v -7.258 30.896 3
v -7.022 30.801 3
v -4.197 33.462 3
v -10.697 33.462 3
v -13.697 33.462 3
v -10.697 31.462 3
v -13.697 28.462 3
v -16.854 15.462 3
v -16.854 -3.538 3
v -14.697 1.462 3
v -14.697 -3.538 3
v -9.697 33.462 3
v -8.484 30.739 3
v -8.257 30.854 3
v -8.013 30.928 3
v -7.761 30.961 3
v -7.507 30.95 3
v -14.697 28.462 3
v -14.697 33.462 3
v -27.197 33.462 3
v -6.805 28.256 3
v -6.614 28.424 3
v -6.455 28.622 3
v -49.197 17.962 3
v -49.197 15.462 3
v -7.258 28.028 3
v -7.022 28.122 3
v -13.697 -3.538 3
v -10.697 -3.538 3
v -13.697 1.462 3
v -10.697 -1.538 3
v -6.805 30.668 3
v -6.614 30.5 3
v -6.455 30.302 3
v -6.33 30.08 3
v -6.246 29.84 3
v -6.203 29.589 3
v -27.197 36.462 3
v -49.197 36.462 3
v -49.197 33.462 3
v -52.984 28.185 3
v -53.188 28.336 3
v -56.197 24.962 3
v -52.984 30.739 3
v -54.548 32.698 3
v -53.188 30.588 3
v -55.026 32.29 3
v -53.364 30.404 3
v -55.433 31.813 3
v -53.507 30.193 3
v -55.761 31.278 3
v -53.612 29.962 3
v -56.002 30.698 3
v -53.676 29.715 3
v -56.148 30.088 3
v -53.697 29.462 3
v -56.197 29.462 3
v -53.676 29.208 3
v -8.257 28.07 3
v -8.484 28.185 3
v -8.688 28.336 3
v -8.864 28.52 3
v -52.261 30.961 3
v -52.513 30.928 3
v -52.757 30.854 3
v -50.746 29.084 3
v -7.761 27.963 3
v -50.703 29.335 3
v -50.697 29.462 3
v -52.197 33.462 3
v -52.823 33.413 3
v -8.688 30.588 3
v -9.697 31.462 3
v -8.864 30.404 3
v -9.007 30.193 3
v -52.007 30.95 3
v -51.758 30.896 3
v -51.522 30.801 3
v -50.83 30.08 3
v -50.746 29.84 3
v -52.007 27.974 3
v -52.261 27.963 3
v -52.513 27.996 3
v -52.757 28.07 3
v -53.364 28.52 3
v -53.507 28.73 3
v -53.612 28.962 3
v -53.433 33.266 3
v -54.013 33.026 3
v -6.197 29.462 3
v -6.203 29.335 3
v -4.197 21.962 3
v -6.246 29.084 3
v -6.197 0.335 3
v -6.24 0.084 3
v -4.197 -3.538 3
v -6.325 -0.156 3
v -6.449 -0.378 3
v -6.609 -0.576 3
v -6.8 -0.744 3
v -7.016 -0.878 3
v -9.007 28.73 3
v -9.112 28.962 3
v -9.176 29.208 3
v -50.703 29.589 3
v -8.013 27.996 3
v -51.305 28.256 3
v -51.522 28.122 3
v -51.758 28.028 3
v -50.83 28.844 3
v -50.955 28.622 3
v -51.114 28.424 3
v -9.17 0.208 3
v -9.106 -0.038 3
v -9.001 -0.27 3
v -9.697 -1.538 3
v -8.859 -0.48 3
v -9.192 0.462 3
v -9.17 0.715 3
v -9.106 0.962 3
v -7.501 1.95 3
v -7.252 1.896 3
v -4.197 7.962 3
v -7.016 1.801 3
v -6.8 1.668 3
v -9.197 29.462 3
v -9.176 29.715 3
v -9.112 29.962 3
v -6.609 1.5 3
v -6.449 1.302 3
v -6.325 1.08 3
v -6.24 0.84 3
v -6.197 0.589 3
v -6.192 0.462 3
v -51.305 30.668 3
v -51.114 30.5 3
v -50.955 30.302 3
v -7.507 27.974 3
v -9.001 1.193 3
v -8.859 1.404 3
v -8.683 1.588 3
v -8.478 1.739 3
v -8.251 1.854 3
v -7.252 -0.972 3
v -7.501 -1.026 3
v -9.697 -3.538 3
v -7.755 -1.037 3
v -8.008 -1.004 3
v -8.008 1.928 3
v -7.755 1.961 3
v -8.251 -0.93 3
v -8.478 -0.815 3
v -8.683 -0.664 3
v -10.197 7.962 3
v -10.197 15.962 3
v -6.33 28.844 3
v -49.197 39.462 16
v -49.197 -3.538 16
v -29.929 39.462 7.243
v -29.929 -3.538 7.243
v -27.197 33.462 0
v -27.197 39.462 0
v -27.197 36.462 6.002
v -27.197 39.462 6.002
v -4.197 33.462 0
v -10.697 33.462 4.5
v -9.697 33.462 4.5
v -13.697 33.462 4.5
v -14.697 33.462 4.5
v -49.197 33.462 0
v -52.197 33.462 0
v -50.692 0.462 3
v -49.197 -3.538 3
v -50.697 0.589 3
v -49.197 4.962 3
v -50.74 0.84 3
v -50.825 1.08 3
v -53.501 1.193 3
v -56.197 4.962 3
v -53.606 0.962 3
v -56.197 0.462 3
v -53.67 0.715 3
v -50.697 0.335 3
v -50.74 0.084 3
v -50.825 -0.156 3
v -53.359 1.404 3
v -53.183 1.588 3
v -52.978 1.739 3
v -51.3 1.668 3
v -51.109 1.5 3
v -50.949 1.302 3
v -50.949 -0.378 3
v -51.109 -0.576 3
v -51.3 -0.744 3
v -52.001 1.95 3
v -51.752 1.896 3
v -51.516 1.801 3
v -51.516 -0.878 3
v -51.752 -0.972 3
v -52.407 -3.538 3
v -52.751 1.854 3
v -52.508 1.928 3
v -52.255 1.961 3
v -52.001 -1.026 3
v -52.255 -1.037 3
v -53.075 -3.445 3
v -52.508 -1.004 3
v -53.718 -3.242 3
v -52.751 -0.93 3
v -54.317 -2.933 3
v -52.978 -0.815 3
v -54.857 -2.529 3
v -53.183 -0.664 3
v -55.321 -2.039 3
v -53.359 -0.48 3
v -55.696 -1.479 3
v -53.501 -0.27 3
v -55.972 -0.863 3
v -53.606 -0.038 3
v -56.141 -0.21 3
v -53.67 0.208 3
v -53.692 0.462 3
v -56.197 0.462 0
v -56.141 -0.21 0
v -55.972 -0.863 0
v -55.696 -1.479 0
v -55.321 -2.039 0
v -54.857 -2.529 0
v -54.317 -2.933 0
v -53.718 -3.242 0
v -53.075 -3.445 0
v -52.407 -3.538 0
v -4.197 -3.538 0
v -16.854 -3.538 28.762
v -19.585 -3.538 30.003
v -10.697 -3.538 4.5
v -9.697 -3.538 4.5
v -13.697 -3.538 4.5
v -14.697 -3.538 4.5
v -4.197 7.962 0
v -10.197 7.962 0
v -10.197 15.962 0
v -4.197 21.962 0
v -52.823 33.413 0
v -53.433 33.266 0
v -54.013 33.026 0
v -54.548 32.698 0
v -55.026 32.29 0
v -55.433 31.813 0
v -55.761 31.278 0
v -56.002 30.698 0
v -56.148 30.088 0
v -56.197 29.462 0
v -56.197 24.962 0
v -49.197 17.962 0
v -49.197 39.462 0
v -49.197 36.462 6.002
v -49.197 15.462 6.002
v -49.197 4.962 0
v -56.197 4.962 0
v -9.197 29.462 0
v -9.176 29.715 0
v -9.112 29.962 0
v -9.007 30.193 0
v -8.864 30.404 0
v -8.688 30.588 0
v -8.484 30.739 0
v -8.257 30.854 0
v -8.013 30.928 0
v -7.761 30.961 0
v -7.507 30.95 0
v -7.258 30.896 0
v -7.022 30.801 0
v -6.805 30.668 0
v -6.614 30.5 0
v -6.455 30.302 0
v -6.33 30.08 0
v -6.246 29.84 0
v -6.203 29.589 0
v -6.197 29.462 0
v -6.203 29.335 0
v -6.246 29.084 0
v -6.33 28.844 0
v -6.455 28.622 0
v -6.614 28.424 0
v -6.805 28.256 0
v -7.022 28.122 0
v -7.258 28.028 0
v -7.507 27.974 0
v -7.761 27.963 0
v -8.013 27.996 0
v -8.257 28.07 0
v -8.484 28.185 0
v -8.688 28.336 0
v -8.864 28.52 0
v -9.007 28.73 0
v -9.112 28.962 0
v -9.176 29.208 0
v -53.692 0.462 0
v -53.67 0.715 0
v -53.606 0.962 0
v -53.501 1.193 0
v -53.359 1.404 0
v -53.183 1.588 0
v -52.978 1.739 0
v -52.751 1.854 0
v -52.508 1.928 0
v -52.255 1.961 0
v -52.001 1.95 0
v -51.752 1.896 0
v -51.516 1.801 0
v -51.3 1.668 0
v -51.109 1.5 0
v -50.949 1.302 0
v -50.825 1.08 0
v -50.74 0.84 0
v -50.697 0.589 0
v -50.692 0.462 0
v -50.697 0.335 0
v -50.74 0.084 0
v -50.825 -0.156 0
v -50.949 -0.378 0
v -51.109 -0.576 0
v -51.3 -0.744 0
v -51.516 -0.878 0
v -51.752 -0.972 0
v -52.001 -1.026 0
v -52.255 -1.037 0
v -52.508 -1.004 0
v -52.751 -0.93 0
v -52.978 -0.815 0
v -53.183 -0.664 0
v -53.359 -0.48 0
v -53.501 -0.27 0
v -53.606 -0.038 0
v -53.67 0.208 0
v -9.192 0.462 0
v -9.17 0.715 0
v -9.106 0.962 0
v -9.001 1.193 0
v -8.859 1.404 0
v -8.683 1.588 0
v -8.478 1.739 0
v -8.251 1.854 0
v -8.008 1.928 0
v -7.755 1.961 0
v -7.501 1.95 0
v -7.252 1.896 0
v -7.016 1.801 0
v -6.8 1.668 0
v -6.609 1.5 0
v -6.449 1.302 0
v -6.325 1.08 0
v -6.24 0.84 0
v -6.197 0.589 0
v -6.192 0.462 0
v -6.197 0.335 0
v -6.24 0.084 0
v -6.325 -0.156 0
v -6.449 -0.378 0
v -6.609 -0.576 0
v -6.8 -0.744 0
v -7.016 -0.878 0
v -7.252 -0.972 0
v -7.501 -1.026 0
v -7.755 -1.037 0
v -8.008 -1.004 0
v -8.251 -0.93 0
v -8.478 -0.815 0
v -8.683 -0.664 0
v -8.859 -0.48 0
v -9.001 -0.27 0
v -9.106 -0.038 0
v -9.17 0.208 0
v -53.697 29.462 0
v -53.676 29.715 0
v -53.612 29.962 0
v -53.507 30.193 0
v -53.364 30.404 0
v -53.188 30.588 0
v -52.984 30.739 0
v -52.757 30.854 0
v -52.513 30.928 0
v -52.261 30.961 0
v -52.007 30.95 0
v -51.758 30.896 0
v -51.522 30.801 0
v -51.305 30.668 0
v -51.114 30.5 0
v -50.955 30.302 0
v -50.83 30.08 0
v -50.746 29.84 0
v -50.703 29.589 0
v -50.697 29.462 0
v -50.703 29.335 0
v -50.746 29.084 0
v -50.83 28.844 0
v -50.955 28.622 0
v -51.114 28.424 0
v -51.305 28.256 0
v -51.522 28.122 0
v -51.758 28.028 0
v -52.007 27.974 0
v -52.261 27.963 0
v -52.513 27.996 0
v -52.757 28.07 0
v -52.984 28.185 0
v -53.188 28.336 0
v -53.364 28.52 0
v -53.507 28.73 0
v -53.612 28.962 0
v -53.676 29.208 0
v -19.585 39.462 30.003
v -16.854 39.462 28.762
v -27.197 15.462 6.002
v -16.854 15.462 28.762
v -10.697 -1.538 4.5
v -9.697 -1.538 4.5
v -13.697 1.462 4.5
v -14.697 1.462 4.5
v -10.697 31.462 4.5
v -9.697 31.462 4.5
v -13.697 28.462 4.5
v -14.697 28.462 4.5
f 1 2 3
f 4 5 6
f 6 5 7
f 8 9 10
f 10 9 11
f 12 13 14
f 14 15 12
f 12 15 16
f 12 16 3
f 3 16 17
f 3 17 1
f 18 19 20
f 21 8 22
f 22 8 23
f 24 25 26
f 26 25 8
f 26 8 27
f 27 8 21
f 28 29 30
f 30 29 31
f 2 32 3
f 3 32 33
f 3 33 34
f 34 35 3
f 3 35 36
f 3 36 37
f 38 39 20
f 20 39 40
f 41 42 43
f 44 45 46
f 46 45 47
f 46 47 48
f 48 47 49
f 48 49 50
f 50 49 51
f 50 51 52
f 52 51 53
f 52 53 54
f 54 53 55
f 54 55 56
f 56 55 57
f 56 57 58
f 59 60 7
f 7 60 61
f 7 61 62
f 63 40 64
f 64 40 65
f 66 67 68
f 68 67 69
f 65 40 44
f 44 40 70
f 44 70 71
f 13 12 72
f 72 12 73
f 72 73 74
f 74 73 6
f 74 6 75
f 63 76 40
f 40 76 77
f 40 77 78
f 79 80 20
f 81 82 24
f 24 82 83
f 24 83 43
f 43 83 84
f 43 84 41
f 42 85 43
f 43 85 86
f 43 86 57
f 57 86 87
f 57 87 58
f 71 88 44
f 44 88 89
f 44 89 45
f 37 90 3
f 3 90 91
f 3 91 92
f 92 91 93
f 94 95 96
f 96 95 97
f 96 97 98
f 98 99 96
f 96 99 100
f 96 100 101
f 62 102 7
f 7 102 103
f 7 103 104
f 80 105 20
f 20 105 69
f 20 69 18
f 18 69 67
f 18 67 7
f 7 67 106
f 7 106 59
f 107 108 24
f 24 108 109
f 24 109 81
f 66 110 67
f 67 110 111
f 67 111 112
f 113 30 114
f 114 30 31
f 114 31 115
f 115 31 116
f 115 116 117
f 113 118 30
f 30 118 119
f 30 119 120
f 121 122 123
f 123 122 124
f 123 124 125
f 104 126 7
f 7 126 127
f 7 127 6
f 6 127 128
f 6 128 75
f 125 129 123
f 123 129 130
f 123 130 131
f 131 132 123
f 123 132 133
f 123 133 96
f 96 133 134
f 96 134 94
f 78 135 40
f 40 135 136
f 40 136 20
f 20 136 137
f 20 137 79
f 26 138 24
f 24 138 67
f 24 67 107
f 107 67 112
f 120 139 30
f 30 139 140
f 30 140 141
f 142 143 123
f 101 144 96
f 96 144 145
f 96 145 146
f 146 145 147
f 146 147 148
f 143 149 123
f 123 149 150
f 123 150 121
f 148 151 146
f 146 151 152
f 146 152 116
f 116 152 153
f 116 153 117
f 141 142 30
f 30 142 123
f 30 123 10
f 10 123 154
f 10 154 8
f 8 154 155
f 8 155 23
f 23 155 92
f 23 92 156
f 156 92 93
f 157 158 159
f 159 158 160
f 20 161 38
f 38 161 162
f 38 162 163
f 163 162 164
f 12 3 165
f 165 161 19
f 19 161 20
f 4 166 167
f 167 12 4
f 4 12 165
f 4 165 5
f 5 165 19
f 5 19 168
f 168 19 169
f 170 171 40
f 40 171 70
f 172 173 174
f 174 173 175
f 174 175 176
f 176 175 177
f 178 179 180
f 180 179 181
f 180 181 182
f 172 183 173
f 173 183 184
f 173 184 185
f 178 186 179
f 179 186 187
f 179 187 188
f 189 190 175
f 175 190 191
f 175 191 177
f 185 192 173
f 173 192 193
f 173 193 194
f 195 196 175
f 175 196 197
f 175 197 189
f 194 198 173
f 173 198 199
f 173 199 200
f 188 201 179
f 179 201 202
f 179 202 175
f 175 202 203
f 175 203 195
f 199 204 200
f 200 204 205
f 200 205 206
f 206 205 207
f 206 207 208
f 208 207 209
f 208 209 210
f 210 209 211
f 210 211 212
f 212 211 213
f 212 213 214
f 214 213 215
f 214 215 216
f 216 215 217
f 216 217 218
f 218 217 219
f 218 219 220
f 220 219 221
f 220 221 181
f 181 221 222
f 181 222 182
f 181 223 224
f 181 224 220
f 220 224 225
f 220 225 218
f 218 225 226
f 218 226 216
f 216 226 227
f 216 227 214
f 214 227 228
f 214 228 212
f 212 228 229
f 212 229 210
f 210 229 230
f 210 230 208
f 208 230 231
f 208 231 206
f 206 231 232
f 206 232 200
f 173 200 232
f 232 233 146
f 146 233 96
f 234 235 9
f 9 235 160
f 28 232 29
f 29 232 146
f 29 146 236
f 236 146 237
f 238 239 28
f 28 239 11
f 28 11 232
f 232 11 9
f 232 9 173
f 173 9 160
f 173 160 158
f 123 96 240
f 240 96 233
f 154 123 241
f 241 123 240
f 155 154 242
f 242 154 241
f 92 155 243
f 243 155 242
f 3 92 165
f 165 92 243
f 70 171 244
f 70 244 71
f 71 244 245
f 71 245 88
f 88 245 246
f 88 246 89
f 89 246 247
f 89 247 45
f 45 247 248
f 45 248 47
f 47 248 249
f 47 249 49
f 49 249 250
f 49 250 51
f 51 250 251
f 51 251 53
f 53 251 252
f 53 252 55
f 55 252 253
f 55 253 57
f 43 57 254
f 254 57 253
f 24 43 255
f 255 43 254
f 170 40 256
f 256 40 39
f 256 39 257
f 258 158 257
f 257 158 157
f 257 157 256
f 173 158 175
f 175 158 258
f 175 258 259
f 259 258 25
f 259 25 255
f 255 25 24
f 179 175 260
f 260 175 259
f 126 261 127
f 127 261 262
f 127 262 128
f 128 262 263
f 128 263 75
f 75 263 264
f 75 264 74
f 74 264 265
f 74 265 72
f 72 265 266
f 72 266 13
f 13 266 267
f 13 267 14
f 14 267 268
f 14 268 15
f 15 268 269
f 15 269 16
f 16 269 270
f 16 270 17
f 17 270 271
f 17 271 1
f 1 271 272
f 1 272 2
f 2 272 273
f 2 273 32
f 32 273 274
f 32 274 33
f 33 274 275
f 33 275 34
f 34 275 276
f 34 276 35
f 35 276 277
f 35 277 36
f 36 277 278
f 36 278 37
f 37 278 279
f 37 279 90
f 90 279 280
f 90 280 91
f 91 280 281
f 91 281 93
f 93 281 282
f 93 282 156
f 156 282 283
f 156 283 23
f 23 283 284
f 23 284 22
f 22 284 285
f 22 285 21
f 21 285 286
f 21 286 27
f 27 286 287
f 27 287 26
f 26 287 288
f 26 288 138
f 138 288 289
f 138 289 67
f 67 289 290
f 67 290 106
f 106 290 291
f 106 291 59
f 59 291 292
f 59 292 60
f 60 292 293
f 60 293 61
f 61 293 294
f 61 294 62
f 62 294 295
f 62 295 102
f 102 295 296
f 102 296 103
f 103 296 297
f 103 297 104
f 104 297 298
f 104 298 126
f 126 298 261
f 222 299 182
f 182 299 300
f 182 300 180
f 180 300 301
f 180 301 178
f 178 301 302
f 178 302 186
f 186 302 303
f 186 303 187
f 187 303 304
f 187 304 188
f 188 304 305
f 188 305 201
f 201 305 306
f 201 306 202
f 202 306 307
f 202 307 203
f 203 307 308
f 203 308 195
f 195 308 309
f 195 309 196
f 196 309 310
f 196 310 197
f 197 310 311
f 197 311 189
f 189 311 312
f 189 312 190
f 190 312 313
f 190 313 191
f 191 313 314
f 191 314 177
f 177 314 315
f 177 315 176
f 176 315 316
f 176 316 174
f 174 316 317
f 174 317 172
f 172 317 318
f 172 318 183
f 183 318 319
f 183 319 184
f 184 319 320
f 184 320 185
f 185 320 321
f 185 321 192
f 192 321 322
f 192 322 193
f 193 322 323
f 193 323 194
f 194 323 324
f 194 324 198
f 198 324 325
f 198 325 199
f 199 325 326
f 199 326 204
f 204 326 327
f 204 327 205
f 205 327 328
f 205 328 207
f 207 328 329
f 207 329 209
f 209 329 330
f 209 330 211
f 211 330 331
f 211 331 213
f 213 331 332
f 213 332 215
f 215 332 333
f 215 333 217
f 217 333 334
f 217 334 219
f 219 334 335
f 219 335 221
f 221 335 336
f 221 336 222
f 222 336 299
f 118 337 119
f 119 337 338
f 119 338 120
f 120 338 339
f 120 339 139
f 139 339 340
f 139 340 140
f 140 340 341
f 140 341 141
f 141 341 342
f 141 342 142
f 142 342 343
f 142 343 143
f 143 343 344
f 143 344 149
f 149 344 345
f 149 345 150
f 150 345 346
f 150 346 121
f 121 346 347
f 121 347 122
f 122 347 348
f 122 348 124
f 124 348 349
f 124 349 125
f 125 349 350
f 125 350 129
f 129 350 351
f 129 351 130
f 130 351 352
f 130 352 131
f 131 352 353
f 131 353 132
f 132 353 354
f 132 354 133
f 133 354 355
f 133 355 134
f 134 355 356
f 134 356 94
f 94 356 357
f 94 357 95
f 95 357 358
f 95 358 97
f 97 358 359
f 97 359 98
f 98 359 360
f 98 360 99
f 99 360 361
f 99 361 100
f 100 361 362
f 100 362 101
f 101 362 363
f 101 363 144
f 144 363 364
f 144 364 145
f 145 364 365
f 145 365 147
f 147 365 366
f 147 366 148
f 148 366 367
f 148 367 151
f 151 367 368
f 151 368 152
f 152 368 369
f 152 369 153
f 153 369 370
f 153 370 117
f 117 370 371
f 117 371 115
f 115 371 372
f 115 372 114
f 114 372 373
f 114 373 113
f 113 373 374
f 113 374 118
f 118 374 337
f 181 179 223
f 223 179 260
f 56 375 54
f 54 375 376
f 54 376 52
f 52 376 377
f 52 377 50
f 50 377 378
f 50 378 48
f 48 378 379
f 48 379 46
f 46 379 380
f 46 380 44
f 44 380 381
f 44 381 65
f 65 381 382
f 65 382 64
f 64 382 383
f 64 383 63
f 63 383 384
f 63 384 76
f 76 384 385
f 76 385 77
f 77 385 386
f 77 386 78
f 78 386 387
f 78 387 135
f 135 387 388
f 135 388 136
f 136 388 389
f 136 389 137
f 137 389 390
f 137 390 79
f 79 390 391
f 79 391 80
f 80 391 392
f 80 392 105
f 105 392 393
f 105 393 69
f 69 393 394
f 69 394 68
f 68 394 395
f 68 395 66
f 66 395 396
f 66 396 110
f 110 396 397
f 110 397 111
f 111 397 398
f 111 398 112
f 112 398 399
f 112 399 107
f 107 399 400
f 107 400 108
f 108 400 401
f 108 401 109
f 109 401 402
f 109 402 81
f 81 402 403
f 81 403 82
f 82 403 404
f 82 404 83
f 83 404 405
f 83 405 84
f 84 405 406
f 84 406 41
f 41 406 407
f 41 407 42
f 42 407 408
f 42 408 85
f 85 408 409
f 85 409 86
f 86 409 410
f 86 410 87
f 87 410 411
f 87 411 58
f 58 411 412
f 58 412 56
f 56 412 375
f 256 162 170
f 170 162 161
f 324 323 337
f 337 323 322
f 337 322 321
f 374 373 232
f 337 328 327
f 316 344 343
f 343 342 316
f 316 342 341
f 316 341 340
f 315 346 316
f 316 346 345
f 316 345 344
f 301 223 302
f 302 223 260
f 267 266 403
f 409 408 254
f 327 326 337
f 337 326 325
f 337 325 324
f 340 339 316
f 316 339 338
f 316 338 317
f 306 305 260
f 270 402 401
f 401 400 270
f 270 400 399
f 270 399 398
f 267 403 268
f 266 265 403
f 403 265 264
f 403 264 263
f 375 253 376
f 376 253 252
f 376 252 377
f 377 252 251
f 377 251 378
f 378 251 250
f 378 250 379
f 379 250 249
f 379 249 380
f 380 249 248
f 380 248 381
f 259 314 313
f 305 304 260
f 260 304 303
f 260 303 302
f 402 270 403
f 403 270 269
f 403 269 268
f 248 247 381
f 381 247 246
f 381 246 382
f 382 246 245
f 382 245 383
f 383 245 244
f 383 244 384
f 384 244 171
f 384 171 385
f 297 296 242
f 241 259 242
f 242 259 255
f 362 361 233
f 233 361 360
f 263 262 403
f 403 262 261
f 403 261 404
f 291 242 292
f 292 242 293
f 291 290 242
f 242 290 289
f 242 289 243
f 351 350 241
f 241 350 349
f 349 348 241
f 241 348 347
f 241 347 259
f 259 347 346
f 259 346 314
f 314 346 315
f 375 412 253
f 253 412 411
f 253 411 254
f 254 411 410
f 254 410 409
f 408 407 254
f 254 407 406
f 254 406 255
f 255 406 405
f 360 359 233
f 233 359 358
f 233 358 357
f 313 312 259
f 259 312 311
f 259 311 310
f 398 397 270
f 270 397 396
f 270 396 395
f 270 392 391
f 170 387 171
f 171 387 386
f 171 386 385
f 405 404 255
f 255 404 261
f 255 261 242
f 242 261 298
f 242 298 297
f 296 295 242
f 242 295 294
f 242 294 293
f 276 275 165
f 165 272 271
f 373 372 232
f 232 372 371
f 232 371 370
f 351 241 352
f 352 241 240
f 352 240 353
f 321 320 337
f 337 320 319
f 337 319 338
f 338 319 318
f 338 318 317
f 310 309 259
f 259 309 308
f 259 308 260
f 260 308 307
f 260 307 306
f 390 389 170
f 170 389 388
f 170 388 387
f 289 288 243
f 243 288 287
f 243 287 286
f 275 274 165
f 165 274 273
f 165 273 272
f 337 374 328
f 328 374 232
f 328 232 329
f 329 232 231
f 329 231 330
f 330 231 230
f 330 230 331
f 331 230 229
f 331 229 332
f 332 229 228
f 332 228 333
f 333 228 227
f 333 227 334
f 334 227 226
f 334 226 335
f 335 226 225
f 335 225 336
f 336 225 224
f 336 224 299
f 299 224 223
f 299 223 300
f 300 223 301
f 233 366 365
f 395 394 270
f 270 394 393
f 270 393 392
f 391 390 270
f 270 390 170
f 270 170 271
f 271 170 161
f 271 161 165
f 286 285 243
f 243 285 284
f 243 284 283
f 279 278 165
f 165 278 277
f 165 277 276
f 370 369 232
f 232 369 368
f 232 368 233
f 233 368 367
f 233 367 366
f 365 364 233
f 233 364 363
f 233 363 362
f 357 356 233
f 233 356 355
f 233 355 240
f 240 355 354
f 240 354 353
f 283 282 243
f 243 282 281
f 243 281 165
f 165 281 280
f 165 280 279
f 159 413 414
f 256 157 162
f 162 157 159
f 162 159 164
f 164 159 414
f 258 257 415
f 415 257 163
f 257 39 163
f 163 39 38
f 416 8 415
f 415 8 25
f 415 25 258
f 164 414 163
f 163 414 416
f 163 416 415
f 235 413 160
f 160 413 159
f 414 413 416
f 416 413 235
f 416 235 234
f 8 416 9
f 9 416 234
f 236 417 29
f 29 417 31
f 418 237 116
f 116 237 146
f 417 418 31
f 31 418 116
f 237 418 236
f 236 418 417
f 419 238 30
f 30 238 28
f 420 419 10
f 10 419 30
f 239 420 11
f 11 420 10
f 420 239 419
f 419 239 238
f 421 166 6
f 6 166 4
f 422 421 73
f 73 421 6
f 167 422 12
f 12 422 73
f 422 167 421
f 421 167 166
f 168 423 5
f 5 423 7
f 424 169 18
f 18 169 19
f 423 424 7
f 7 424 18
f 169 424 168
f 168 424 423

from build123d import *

# Parameters (mm, degrees)
CROQUIS1_R              = 1.5
SALIENTE_EXTRUIR1_DEPTH = 3
CROQUIS3_W              = 22
CROQUIS3_H              = 37
SALIENTE_EXTRUIR2_DEPTH = 13
CORTAR_EXTRUIR1_START   = -37
CORTAR_EXTRUIR1_DEPTH   = 37
SALIENTE_EXTRUIR4_DEPTH = 6
CROQUIS7_W              = 3.002058729
CROQUIS7_H              = 21
CORTAR_EXTRUIR2_DEPTH   = 22
CROQUIS8_W              = 3
CROQUIS8_H              = 43
SALIENTE_EXTRUIR5_DEPTH = 25
SALIENTE_EXTRUIR6_START = -19
SALIENTE_EXTRUIR6_DEPTH = 19
CROQUIS13_W             = 1
CROQUIS13_H             = 2
CROQUIS13_H_2           = 5
SALIENTE_EXTRUIR8_DEPTH = 1.5


with BuildPart() as part:
    # Croquis1 → Saliente-Extruir1 (new body)
    with BuildSketch(Plane.XY):
        with BuildLine():
            Line((-56.197309417, 29.461883408), (-56.197309417, 24.961883408))
            Line((-56.197309417, 24.961883408), (-49.197309417, 17.961883408))
            Line((-49.197309417, 17.961883408), (-49.197309417, 4.961883408))
            Line((-49.197309417, 4.961883408), (-56.197309417, 4.961883408))
            Line((-56.197309417, 4.961883408), (-56.197309417, 0.461883408))
            ThreePointArc((-56.197309417, 0.461883408), (-55.099110766, -2.293519818), (-52.406664651, -3.538116592))
            Line((-52.406664651, -3.538116592), (-4.197309417, -3.538116592))
            Line((-4.197309417, -3.538116592), (-4.197309417, 7.961883408))
            Line((-4.197309417, 7.961883408), (-10.197309417, 7.961883408))
            Line((-10.197309417, 7.961883408), (-10.197309417, 15.961883408))
            Line((-10.197309417, 15.961883408), (-4.197309417, 21.961883408))
            Line((-4.197309417, 21.961883408), (-4.197309417, 33.461883408))
            Line((-4.197309417, 33.461883408), (-52.197309417, 33.461883408))
            ThreePointArc((-52.197309417, 33.461883408), (-55.025736542, 32.290310533), (-56.197309417, 29.461883408))
        make_face()
        with Locations((-52.19152813, 0.461883408)):
            Circle(CROQUIS1_R, mode=Mode.SUBTRACT)
        with Locations((-7.69152813, 0.461883408)):
            Circle(CROQUIS1_R, mode=Mode.SUBTRACT)
        with Locations((-52.197309417, 29.461883408)):
            Circle(CROQUIS1_R, mode=Mode.SUBTRACT)
        with Locations((-7.697309417, 29.461882832)):
            Circle(CROQUIS1_R, mode=Mode.SUBTRACT)
    extrude(amount=SALIENTE_EXTRUIR1_DEPTH)

    # Croquis3 → Saliente-Extruir2 (add)
    with BuildSketch(Plane.XY.offset(3)):
        with Locations((-38.197309417, 14.961883408)):
            Rectangle(CROQUIS3_W, CROQUIS3_H)
    extrude(amount=SALIENTE_EXTRUIR2_DEPTH)

    # Croquis4 → Cortar-Extruir1 (cut)
    with BuildSketch(Plane.XZ.offset(3.538116592).offset(CORTAR_EXTRUIR1_START)):
        Polygon((-27.197309417, 16), (-27.197309417, 6.002058729), (-49.197309417, 16), align=None)
    extrude(amount=CORTAR_EXTRUIR1_DEPTH, mode=Mode.SUBTRACT)

    # Croquis6 → Saliente-Extruir4 (add)
    with BuildSketch(Plane(origin=(0, 33.461883408, 0), x_dir=(1, 0, 0), z_dir=(0, 1, 0))):
        Polygon((-27.197309417, -6.002058729), (-49.197309417, -16), (-49.197309417, 0), (-27.197309417, 0), align=None)
    extrude(amount=SALIENTE_EXTRUIR4_DEPTH)

    # Croquis7 → Cortar-Extruir2 (cut)
    with BuildSketch(Plane(origin=(-27.197309417, 0, 0), x_dir=(0, 0, -1), z_dir=(1, 0, 0))):
        with Locations((-4.501029365, 25.961883408)):
            Rectangle(CROQUIS7_W, CROQUIS7_H)
    extrude(amount=-CORTAR_EXTRUIR2_DEPTH, mode=Mode.SUBTRACT)

    # Croquis8 → Saliente-Extruir5 (add)
    with BuildSketch(Plane(origin=(-2.394740987, 0, -5.269515022), x_dir=(0.9103985682863143, 0, -0.4137323372208525), z_dir=(0.4137323372208525, 0, 0.9103985682863143))):
        with Locations((-28.743637341, 17.961883408)):
            Rectangle(CROQUIS8_W, CROQUIS8_H)
    extrude(amount=SALIENTE_EXTRUIR5_DEPTH)

    # Croquis9 → Saliente-Extruir6 (add)
    with BuildSketch(Plane.XZ.offset(3.538116592).offset(SALIENTE_EXTRUIR6_START)):
        Polygon((-16.854000987, 28.762022936), (-27.197309417, 6.002058729), (-27.197309417, 3), (-16.854000987, 3), align=None)
    extrude(amount=SALIENTE_EXTRUIR6_DEPTH)

    # Croquis13 → Saliente-Extruir8 (add)
    with BuildSketch(Plane.XY.offset(3)):
        with Locations((-10.197309417, -2.538116592)):
            Rectangle(CROQUIS13_W, CROQUIS13_H)
        with Locations((-10.197309417, 32.461883408)):
            Rectangle(CROQUIS13_W, CROQUIS13_H)
        with Locations((-14.197309417, 30.961883408)):
            Rectangle(CROQUIS13_W, CROQUIS13_H_2)
        with Locations((-14.197309417, -1.038116592)):
            Rectangle(CROQUIS13_W, CROQUIS13_H_2)
    extrude(amount=SALIENTE_EXTRUIR8_DEPTH)


solid = part.part
